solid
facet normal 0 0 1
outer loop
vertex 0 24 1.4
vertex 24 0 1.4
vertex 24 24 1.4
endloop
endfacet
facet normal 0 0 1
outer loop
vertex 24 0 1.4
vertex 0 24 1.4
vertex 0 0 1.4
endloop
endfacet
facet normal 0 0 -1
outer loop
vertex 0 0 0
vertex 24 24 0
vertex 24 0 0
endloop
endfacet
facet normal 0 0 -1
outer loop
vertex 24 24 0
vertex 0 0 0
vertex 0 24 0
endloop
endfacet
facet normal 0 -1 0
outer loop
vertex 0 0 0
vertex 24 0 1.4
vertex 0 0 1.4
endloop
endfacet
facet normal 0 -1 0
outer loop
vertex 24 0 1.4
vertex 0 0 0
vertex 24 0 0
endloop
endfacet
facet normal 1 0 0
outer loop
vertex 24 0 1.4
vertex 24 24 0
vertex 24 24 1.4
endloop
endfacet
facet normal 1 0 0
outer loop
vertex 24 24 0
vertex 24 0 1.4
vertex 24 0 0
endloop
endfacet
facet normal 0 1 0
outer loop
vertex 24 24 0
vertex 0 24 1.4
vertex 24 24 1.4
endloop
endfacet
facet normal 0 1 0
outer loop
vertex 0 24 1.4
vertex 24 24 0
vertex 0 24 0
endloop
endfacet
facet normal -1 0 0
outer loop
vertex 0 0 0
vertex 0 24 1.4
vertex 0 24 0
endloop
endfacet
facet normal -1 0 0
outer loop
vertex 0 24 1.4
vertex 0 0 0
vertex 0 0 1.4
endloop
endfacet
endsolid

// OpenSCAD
/* Warning, this is a very basic generator with a lot of approximation 
input data : [LQFP, G9C, 24x24x1.4mm, 160, , A, C04-25652A]
generated by com.zoubworld.electronics.cad.model3d.Basic
Date : Sun Feb 15 10:50:49 CET 2026
*/

//body
color("black")
translate([0,0,0])
cube([24.0,24.0,1.4], center=false);
